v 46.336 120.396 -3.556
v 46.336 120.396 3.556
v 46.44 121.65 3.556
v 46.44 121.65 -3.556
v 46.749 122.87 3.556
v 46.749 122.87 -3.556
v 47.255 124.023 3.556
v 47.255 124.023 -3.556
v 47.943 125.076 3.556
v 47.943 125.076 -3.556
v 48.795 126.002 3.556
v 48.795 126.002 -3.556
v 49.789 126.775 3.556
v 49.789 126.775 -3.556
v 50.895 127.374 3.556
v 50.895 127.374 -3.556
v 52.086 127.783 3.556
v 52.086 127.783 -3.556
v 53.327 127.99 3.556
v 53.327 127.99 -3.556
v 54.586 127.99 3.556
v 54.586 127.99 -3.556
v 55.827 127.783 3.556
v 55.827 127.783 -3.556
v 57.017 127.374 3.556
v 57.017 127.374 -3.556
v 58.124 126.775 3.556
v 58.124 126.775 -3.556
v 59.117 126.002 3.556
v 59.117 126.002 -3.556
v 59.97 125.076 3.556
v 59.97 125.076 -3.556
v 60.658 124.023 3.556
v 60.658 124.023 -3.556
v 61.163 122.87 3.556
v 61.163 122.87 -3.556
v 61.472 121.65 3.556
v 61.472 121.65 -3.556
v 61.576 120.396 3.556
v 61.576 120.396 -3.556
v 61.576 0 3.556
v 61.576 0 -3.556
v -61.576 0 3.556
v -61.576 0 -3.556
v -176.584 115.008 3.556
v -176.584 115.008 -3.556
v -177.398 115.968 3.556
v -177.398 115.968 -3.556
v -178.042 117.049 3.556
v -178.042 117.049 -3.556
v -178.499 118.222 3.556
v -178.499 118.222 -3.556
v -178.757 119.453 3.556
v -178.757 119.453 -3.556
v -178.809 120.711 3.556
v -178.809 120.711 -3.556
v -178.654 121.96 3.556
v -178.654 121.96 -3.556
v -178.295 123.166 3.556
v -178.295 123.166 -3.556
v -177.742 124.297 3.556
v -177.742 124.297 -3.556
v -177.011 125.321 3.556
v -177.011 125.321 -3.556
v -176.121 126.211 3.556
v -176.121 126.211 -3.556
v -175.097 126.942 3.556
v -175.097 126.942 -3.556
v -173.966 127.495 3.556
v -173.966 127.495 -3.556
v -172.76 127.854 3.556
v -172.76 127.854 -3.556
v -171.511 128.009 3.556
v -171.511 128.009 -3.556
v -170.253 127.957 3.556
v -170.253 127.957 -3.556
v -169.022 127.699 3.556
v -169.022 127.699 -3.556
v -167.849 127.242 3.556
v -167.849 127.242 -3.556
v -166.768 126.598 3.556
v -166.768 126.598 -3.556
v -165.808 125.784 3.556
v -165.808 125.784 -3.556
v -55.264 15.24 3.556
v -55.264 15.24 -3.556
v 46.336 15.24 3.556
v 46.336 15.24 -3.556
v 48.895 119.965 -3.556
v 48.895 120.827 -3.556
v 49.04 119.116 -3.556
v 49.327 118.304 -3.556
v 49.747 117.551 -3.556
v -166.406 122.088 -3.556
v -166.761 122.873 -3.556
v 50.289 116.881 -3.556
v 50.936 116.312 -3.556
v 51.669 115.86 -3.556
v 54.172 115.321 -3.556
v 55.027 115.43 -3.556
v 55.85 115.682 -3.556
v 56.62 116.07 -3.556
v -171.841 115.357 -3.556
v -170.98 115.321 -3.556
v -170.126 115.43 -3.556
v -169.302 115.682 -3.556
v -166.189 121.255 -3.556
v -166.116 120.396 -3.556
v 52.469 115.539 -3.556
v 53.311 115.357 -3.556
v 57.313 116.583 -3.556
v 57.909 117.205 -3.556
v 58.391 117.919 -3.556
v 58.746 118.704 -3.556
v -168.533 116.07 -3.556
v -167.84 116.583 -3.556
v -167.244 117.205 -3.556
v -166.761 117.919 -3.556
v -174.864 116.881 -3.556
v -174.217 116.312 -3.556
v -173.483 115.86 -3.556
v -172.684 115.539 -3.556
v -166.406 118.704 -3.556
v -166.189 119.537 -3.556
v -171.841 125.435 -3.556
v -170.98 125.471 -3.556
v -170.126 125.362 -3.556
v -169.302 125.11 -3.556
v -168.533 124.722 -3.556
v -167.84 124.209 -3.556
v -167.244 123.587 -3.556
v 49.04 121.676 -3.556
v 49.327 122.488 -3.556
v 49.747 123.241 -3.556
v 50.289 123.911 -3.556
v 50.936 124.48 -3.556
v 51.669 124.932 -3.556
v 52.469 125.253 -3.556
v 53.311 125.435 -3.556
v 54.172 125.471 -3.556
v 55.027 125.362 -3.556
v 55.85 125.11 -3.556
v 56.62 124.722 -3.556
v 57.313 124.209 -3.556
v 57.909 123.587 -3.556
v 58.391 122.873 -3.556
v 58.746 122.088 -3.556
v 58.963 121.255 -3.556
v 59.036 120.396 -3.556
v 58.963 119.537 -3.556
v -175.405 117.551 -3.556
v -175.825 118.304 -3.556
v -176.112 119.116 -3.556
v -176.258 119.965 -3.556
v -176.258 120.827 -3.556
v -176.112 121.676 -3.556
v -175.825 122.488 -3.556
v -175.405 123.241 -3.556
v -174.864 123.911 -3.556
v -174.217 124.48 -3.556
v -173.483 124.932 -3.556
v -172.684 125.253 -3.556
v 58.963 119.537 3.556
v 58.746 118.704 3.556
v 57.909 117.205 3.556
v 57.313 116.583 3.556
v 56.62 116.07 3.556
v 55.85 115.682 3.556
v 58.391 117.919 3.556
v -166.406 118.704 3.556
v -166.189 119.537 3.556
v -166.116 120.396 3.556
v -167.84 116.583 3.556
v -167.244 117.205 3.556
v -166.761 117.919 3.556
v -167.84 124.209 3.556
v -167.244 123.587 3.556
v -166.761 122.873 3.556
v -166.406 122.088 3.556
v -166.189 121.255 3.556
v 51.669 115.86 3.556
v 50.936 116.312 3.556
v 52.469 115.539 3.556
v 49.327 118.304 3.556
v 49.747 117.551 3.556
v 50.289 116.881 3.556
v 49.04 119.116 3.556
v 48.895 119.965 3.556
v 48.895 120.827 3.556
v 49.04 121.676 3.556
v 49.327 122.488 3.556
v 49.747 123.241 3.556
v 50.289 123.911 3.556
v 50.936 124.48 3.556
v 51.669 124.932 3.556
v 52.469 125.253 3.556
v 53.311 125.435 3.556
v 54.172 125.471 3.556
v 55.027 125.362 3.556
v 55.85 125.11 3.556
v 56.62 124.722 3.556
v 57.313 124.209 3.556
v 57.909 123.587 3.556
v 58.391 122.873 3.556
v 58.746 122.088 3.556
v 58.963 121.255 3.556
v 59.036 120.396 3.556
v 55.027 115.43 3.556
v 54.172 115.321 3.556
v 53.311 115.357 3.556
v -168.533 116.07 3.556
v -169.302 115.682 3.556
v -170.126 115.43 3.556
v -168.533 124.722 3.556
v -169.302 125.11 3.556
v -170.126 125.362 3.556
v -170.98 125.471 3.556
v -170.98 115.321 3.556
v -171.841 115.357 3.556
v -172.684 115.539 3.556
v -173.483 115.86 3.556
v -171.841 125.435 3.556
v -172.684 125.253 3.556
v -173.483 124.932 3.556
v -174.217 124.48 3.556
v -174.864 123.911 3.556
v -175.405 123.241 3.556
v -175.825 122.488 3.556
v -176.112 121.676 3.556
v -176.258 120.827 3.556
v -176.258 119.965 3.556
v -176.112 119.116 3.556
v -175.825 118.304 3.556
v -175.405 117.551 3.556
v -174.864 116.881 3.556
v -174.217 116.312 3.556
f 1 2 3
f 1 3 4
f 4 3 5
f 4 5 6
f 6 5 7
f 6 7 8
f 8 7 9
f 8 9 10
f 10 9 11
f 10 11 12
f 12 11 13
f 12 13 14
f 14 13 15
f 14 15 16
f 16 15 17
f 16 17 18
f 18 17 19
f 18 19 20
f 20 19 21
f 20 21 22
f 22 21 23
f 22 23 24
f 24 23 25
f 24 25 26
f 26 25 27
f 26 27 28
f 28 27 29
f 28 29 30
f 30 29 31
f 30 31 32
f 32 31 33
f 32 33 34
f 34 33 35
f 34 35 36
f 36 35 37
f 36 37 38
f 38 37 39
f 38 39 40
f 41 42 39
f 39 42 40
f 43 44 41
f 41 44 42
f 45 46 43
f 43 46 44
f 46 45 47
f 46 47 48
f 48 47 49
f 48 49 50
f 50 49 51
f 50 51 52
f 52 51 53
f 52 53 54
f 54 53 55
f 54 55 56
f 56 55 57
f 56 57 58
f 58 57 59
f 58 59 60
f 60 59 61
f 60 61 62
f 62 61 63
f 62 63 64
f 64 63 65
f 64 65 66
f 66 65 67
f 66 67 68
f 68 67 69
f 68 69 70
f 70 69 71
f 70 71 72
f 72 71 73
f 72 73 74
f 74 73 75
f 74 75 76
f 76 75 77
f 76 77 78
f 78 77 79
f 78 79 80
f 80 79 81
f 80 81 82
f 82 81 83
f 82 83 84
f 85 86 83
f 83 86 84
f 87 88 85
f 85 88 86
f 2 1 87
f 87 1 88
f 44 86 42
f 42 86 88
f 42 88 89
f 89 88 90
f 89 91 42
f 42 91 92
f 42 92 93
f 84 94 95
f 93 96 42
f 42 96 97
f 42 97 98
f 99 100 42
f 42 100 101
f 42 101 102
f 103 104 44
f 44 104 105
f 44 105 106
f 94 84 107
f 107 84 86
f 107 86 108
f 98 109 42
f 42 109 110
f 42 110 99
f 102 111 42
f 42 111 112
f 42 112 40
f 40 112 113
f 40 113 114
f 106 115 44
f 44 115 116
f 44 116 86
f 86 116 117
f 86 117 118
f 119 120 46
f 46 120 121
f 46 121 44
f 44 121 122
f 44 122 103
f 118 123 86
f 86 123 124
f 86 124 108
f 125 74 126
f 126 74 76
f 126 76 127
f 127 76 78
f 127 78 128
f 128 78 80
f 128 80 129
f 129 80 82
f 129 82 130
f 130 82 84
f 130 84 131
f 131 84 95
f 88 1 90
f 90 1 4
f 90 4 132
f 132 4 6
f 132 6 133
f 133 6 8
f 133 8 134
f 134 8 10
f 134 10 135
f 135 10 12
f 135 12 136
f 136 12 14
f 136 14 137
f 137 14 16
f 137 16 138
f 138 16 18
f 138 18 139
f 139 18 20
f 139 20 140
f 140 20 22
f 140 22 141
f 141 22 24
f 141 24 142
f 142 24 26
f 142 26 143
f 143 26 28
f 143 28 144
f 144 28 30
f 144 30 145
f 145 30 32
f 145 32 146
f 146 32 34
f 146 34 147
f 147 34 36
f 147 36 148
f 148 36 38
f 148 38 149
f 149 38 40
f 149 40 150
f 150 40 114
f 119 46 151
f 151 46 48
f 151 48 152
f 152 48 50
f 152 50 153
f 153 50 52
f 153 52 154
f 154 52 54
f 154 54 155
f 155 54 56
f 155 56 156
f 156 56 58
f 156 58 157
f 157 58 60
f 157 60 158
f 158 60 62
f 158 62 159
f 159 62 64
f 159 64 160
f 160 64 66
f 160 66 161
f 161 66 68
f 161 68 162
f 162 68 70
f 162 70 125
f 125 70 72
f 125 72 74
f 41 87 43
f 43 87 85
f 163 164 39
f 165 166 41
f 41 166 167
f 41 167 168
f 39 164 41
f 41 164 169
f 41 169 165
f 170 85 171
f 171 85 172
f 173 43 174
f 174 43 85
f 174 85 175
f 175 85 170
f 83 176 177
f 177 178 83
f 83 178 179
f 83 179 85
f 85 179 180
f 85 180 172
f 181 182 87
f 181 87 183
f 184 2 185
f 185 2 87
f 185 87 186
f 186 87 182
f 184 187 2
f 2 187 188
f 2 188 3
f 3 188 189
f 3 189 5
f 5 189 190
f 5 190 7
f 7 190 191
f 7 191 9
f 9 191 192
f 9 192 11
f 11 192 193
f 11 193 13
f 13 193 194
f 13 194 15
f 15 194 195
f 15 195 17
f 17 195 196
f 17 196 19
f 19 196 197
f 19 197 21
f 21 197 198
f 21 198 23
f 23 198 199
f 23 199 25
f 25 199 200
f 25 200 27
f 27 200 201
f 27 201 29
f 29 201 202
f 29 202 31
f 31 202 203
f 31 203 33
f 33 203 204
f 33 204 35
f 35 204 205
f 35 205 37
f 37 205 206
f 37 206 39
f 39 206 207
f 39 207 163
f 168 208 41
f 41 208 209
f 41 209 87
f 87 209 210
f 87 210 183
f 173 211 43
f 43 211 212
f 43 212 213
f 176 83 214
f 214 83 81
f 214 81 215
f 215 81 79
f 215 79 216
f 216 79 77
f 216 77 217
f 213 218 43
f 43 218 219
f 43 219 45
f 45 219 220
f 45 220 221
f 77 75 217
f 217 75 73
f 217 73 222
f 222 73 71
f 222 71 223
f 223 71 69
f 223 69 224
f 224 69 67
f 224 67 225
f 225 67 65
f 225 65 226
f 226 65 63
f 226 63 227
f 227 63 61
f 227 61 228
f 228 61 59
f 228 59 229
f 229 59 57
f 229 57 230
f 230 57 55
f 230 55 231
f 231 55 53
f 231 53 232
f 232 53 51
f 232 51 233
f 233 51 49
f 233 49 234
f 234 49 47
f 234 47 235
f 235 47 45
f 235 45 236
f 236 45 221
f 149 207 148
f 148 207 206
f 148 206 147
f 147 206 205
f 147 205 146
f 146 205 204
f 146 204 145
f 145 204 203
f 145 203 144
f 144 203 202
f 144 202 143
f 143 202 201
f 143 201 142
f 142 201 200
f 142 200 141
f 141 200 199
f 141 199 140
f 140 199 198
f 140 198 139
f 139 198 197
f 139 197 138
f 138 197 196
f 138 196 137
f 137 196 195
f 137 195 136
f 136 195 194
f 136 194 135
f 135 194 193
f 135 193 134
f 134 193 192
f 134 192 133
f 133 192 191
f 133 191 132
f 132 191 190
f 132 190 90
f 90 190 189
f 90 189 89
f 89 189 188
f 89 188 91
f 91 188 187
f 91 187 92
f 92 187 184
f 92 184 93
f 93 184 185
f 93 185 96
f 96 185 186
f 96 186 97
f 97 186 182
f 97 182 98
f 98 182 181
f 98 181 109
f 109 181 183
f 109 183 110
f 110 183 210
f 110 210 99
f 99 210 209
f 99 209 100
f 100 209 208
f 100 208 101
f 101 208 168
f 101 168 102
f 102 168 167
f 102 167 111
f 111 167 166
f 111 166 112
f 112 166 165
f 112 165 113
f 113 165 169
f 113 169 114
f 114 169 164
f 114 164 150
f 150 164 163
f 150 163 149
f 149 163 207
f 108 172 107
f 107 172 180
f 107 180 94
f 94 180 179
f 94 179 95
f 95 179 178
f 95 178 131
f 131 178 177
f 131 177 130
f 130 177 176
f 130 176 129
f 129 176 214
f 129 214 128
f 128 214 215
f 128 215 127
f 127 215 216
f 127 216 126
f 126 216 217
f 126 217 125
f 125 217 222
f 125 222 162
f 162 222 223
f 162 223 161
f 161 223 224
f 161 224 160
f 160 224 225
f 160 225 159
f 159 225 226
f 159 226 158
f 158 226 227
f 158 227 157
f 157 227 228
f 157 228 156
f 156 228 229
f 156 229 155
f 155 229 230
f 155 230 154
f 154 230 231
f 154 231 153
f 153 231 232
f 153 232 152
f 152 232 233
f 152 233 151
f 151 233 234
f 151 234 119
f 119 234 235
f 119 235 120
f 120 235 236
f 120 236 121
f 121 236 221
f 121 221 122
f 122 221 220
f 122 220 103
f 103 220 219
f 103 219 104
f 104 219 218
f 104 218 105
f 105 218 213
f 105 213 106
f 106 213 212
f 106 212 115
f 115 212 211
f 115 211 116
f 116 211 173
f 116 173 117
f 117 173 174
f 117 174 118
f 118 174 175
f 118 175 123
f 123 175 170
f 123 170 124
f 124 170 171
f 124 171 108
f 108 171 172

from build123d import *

# Parameters (mm, degrees)
BOSS_EXTRUDE1_DEPTH        = 3.556
BOSS_EXTRUDE1_DEPTH_BACK   = 3.556
F_3_4_0_4_DIAMETER_HOLE1_D = 10.16


with BuildPart() as part:
    # Sketch1 → Boss-Extrude1 (new, two sides: drawn at the far end of the back side and taken through both)
    with BuildSketch(Plane.XY.offset(-BOSS_EXTRUDE1_DEPTH_BACK)):
        with BuildLine():
            Line((46.336307345, 120.396), (46.336307345, 15.24))
            Line((46.336307345, 15.24), (-55.263692655, 15.24))
            Line((-55.263692655, 15.24), (-165.807846327, 125.784153673))
            ThreePointArc((-165.807846327, 125.784153673), (-176.584153673, 125.784153673), (-176.584153673, 115.007846327))
            Line((-176.584153673, 115.007846327), (-61.576307345, 0))
            Line((-61.576307345, 0), (61.576307345, 0))
            Line((61.576307345, 0), (61.576307345, 120.396))
            ThreePointArc((61.576307345, 120.396), (53.956307345, 128.016), (46.336307345, 120.396))
        make_face()
    extrude(amount=BOSS_EXTRUDE1_DEPTH + BOSS_EXTRUDE1_DEPTH_BACK)

    # 3/4 (0.4) Diameter Hole1 (through all)
    with Locations(Plane.XY.offset(3.556)):
        with Locations((-171.196, 120.396), (53.956307345, 120.396)):
            Hole(F_3_4_0_4_DIAMETER_HOLE1_D / 2)


solid = part.part
